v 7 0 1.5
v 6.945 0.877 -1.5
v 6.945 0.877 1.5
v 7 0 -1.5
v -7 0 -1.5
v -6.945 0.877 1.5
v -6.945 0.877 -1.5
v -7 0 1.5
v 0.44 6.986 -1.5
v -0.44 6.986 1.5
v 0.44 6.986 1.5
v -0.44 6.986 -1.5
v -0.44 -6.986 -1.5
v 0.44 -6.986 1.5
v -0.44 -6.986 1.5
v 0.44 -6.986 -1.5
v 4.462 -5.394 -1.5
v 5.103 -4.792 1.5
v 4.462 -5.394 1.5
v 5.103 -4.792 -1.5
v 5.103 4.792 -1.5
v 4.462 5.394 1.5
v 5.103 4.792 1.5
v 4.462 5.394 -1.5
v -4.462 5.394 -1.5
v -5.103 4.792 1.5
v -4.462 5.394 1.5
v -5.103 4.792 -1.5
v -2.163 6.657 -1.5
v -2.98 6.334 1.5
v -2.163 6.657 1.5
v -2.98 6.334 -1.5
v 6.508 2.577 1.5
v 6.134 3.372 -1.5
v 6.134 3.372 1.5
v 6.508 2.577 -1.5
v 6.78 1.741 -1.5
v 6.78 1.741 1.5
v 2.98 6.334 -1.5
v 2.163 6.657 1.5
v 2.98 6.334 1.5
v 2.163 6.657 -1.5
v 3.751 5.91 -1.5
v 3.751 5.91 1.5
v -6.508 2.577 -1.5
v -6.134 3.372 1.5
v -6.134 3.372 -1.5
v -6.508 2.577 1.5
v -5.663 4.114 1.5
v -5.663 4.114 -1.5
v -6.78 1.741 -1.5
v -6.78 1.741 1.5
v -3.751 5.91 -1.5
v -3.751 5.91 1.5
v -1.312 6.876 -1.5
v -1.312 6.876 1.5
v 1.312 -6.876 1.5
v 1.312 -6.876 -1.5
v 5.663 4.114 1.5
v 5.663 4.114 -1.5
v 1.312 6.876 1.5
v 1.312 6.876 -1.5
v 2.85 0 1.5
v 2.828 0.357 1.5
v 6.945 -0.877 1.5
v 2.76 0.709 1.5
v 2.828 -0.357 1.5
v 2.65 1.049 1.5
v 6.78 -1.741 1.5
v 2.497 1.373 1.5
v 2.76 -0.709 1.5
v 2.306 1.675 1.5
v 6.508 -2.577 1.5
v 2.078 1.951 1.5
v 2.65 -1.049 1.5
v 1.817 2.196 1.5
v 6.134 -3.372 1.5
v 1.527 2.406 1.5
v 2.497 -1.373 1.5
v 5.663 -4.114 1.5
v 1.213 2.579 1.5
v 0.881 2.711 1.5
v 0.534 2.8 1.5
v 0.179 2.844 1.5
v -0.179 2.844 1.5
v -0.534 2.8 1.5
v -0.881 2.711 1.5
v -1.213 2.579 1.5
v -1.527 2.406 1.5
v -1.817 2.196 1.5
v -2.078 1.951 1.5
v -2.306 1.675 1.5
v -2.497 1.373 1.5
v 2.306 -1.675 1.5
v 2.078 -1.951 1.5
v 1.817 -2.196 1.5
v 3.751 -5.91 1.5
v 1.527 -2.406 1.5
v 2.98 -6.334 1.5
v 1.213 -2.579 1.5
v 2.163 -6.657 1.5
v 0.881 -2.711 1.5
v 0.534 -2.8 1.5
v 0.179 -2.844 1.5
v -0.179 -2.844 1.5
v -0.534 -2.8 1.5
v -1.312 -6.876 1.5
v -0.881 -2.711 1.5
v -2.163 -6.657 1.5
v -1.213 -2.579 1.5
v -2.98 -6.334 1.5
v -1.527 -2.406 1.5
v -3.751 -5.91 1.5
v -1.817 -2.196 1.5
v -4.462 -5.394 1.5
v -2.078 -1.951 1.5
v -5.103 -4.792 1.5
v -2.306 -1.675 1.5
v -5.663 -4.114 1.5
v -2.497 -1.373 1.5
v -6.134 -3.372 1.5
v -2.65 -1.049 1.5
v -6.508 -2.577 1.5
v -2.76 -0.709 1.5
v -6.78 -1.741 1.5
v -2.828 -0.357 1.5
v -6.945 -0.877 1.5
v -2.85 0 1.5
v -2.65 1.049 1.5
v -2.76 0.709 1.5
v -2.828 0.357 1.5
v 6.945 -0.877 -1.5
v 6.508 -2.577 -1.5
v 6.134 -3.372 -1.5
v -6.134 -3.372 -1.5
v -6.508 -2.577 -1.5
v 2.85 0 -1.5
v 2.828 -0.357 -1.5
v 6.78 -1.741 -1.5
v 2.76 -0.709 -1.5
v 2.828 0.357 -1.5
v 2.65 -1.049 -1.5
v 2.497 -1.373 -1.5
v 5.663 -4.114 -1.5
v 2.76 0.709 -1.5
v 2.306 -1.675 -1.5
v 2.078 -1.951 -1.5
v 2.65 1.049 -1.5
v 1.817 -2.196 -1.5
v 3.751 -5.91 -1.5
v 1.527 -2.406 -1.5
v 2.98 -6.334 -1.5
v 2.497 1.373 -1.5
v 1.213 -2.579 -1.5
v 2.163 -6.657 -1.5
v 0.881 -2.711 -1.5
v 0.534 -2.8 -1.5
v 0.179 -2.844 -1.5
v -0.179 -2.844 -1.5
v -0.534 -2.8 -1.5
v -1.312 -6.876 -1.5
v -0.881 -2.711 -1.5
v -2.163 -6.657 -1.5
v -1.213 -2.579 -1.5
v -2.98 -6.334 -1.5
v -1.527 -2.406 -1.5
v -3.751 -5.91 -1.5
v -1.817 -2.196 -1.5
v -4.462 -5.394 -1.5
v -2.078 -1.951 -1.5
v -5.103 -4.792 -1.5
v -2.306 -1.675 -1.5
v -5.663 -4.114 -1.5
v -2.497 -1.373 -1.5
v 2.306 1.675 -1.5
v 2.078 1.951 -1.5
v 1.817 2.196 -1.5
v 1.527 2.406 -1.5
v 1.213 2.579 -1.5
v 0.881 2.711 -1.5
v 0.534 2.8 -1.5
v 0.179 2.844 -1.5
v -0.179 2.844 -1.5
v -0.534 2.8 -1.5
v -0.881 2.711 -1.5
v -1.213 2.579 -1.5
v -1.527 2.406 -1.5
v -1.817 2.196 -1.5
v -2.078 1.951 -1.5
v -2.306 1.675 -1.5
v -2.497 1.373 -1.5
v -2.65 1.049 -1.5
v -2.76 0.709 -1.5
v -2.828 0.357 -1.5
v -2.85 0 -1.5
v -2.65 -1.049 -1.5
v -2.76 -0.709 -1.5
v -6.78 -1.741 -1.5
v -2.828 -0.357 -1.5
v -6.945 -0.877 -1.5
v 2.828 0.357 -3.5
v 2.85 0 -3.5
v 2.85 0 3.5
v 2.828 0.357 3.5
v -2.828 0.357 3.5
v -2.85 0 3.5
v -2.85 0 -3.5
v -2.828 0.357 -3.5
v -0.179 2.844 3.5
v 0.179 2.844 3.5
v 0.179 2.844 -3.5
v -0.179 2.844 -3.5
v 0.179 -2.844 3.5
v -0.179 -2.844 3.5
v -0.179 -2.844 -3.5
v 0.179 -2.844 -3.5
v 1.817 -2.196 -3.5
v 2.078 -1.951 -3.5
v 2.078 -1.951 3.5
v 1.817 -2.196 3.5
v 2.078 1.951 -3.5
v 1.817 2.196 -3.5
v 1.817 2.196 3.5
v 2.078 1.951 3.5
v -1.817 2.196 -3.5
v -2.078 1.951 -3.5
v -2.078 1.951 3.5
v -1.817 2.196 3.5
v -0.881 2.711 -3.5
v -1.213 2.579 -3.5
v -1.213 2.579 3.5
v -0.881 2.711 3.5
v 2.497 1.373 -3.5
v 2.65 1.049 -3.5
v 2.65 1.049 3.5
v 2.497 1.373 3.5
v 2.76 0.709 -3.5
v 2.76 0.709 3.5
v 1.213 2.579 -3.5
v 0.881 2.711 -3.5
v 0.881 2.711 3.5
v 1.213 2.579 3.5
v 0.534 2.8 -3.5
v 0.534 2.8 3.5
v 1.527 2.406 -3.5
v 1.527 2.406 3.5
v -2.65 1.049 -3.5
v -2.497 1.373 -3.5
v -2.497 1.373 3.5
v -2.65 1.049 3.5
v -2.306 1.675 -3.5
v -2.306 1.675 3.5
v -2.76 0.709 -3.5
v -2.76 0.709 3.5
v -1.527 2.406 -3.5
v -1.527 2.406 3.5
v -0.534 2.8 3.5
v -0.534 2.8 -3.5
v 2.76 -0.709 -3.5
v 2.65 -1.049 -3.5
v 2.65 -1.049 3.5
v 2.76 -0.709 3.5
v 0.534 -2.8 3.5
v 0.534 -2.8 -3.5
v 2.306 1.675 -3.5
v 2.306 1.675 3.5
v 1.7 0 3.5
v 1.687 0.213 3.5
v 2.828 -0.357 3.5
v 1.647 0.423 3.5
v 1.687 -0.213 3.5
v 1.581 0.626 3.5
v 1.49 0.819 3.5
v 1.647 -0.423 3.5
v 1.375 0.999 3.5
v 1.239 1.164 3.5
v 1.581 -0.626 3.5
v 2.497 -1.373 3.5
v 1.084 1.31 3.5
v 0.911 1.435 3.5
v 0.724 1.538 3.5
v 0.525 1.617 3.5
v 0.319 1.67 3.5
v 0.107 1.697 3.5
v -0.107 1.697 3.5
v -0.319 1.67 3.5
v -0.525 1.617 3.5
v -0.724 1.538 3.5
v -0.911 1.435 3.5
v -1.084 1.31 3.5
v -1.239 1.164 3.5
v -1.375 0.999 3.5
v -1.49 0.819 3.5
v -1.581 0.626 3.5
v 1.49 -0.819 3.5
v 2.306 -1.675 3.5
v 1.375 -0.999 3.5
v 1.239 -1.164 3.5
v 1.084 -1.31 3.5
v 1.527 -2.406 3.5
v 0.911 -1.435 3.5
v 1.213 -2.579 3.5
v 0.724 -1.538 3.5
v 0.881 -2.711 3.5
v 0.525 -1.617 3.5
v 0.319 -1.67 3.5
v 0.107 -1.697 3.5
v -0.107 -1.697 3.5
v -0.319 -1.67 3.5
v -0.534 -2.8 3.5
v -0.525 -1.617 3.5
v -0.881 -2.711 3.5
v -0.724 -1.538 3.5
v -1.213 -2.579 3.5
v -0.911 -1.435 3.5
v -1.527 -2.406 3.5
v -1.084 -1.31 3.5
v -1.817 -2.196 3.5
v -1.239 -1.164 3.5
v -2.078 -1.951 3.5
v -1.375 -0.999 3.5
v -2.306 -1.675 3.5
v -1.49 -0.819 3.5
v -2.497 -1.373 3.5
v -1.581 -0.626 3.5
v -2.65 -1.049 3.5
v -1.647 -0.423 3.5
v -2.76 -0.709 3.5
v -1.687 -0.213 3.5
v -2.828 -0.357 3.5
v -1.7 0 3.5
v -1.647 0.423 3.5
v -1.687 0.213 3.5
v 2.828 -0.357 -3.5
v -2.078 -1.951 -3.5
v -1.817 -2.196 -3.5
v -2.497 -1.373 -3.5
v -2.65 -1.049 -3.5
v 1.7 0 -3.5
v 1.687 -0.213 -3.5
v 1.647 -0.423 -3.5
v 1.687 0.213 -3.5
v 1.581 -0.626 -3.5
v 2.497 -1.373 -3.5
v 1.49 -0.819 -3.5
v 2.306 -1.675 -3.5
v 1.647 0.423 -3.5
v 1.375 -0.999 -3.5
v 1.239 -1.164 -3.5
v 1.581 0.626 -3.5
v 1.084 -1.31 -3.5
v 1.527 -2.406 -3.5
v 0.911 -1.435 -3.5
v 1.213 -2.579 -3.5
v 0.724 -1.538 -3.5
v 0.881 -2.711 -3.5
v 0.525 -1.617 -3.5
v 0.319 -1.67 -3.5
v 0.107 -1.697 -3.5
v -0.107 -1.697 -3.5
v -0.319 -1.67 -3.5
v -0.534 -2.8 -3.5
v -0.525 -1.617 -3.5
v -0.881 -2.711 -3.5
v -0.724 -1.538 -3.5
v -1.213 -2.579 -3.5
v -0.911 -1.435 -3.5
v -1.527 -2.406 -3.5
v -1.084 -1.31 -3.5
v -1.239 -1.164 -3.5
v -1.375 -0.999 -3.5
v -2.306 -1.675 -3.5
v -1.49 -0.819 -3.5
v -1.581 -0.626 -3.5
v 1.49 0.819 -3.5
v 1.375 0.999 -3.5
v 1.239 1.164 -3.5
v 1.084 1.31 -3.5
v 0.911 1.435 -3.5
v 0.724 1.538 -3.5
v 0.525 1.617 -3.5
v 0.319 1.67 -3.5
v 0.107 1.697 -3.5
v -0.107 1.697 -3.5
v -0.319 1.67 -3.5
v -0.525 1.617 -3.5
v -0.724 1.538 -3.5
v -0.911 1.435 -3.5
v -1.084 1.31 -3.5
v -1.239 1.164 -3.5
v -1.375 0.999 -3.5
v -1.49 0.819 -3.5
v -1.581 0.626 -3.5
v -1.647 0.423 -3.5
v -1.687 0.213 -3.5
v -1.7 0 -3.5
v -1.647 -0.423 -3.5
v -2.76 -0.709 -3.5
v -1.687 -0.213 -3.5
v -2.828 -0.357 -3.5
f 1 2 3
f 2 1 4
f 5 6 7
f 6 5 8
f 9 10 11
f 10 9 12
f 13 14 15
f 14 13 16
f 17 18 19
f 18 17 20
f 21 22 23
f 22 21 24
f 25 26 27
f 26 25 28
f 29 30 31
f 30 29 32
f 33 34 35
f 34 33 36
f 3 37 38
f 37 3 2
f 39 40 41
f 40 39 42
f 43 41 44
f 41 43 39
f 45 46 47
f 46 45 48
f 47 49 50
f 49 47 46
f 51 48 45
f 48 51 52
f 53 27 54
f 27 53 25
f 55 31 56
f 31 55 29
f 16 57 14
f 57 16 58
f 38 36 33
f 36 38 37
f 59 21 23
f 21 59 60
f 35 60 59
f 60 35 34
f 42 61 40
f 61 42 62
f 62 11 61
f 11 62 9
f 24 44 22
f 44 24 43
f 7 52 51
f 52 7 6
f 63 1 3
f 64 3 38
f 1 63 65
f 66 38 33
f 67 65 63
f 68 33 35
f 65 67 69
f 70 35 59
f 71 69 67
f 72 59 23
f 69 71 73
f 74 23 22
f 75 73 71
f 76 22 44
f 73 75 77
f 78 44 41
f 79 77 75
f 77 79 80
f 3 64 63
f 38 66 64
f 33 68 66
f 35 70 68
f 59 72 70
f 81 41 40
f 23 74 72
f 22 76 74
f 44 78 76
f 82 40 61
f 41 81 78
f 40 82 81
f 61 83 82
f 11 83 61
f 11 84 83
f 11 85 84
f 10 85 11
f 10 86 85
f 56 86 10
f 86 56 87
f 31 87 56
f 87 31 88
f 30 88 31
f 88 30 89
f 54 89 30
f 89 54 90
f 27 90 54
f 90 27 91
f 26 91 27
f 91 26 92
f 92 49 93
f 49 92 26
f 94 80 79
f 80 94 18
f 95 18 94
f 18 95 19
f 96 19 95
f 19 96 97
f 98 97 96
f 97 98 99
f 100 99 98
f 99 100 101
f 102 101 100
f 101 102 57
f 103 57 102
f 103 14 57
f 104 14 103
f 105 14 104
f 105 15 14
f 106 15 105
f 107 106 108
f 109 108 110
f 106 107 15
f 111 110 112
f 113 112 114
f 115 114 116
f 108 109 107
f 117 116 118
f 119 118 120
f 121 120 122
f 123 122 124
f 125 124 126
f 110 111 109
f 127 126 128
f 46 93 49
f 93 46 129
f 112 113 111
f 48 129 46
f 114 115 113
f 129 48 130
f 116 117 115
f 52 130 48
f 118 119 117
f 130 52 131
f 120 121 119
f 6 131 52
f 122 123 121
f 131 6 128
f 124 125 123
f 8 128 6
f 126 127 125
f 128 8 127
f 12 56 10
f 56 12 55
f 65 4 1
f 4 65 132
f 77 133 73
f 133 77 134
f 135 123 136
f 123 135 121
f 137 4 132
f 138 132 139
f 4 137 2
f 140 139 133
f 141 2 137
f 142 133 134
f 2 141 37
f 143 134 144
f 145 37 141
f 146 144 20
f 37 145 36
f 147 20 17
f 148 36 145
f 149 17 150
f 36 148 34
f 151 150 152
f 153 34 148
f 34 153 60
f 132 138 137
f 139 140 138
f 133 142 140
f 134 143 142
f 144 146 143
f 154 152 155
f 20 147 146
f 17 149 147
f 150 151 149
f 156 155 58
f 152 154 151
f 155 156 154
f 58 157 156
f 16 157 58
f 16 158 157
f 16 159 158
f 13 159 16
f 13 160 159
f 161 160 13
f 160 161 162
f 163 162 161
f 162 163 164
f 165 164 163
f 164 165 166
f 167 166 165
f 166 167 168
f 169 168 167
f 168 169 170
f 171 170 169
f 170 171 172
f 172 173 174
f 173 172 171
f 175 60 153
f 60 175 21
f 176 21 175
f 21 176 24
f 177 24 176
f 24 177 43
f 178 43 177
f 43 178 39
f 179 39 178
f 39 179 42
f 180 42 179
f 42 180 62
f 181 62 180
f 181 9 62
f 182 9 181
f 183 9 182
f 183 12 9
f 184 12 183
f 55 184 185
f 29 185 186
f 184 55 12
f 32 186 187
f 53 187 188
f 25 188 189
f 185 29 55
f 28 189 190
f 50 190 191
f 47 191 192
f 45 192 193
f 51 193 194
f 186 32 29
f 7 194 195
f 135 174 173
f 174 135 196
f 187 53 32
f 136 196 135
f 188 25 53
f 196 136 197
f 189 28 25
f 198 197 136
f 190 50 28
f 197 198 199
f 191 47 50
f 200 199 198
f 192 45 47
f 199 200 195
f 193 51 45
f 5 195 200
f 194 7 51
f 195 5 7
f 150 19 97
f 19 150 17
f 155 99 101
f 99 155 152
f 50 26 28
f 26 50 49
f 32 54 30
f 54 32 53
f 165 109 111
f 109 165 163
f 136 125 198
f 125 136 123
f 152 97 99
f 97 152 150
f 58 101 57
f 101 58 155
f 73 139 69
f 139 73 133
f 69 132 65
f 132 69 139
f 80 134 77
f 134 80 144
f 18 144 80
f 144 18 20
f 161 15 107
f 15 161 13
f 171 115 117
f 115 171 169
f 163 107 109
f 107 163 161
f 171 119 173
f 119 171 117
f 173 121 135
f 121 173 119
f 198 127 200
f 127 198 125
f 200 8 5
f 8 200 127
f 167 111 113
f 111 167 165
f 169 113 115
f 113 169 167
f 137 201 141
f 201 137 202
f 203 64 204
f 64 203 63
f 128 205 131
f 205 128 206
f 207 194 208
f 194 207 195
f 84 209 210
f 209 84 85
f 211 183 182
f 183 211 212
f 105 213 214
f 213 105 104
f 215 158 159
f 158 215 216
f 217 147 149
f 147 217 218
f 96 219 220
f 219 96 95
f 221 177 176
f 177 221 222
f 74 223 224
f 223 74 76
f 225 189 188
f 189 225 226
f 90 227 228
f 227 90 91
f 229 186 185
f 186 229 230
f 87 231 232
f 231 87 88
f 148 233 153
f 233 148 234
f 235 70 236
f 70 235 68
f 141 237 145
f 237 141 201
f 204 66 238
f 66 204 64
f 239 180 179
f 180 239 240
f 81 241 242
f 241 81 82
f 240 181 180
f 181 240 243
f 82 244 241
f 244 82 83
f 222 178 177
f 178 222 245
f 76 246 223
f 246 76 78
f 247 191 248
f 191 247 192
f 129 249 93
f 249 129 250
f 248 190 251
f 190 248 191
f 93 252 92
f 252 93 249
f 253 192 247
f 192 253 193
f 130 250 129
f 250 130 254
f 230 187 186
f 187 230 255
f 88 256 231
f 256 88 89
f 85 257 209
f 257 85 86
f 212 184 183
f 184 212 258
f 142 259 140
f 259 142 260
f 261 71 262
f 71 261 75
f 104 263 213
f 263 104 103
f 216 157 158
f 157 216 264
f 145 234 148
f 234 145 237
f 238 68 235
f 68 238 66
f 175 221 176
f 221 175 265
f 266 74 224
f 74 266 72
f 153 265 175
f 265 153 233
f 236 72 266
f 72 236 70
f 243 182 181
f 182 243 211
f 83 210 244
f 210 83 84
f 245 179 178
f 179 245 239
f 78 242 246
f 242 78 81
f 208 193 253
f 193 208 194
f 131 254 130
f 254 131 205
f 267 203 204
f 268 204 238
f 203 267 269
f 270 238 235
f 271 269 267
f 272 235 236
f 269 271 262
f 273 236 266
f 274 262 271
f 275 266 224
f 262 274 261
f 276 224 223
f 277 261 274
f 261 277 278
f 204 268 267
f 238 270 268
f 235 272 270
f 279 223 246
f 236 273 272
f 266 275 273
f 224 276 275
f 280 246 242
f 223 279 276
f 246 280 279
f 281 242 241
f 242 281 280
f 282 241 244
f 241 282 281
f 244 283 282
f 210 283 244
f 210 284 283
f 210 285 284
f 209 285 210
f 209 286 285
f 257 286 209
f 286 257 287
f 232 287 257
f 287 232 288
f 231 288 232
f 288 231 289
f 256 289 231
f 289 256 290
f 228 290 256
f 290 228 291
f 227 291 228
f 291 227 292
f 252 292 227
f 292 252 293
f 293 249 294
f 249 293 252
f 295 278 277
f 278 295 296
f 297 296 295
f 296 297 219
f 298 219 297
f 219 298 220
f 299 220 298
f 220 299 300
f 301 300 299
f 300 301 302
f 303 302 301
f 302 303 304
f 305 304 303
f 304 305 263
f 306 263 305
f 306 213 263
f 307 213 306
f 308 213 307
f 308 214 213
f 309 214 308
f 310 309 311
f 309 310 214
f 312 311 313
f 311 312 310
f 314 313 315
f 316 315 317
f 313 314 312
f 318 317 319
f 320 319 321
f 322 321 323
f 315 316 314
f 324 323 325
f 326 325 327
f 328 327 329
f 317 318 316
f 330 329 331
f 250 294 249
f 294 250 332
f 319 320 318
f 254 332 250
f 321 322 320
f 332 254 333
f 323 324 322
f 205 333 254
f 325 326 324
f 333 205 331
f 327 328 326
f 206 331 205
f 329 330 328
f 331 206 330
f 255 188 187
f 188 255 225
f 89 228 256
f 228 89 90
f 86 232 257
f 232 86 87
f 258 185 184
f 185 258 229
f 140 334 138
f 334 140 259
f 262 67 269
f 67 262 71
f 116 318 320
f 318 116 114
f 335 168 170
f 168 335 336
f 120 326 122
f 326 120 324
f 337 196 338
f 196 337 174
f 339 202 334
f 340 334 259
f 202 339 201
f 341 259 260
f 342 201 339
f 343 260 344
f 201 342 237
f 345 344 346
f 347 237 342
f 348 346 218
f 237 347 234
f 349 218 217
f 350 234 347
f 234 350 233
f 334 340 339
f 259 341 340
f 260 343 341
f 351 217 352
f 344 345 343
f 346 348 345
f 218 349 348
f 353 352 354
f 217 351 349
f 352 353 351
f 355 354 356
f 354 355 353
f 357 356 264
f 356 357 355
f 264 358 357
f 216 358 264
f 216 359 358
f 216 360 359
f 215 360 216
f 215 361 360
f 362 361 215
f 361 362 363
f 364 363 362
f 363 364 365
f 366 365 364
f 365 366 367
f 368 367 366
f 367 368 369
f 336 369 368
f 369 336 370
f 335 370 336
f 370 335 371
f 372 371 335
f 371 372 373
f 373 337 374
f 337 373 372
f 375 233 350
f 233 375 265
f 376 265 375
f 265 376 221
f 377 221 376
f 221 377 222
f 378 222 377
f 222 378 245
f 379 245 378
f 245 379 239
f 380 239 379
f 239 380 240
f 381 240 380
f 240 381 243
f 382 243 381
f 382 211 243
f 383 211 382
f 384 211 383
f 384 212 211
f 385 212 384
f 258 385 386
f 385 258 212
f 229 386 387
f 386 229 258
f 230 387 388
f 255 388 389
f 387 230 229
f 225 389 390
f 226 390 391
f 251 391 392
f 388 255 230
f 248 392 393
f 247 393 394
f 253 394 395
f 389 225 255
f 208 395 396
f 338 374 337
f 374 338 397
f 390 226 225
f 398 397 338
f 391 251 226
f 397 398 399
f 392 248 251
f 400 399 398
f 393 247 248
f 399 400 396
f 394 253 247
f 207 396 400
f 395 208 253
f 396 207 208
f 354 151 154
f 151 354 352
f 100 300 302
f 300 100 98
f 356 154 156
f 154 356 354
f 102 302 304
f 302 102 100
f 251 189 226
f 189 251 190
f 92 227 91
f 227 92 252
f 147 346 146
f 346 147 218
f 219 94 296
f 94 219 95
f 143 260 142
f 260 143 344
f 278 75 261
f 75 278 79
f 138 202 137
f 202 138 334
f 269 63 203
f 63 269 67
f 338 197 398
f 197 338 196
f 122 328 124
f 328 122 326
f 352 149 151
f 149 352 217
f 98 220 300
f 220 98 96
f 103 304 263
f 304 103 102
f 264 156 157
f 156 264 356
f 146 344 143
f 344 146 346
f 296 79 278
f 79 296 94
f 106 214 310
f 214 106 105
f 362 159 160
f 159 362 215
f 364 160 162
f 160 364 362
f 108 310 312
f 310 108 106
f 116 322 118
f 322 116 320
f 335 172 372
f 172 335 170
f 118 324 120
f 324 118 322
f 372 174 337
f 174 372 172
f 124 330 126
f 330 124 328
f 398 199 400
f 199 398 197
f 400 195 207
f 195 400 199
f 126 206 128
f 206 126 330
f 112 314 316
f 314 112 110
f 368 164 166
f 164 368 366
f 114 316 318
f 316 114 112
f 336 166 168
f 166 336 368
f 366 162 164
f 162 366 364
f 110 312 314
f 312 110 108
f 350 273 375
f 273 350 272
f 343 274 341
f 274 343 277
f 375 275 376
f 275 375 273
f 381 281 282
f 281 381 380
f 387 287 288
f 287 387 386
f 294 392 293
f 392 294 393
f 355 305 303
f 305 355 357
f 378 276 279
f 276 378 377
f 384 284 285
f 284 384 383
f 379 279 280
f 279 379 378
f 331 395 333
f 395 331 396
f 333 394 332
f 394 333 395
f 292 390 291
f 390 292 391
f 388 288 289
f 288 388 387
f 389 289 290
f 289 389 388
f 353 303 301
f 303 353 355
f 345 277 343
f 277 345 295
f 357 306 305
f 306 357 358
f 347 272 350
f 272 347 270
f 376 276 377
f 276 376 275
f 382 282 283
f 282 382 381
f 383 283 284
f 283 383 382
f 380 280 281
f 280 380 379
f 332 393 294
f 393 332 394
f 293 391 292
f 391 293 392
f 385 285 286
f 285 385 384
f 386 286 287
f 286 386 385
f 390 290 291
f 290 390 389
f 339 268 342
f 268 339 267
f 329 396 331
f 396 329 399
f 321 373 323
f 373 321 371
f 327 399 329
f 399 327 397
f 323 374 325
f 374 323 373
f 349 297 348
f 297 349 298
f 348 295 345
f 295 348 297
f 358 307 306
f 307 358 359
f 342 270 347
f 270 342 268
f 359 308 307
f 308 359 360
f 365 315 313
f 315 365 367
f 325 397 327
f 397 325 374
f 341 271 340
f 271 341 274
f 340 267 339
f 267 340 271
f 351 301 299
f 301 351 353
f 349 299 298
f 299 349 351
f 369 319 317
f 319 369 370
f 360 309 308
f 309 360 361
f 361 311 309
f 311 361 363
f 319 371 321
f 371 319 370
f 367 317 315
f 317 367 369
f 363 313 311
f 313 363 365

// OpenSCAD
$fn = 50;


difference() {
	union() {
		translate(v = [0, 0, -1.5000000000]) {
			rotate(a = [0, 0, 0]) {
				cylinder(h = 3, r = 7.0000000000);
			}
		}
		translate(v = [0, 0, -3.5000000000]) {
			rotate(a = [0, 0, 0]) {
				cylinder(h = 7, r = 2.8500000000);
			}
		}
	}
	union() {
		translate(v = [0, 0, -125.0000000000]) {
			rotate(a = [0, 0, 0]) {
				cylinder(h = 250, r = 1.7000000000);
			}
		}
	}
}
